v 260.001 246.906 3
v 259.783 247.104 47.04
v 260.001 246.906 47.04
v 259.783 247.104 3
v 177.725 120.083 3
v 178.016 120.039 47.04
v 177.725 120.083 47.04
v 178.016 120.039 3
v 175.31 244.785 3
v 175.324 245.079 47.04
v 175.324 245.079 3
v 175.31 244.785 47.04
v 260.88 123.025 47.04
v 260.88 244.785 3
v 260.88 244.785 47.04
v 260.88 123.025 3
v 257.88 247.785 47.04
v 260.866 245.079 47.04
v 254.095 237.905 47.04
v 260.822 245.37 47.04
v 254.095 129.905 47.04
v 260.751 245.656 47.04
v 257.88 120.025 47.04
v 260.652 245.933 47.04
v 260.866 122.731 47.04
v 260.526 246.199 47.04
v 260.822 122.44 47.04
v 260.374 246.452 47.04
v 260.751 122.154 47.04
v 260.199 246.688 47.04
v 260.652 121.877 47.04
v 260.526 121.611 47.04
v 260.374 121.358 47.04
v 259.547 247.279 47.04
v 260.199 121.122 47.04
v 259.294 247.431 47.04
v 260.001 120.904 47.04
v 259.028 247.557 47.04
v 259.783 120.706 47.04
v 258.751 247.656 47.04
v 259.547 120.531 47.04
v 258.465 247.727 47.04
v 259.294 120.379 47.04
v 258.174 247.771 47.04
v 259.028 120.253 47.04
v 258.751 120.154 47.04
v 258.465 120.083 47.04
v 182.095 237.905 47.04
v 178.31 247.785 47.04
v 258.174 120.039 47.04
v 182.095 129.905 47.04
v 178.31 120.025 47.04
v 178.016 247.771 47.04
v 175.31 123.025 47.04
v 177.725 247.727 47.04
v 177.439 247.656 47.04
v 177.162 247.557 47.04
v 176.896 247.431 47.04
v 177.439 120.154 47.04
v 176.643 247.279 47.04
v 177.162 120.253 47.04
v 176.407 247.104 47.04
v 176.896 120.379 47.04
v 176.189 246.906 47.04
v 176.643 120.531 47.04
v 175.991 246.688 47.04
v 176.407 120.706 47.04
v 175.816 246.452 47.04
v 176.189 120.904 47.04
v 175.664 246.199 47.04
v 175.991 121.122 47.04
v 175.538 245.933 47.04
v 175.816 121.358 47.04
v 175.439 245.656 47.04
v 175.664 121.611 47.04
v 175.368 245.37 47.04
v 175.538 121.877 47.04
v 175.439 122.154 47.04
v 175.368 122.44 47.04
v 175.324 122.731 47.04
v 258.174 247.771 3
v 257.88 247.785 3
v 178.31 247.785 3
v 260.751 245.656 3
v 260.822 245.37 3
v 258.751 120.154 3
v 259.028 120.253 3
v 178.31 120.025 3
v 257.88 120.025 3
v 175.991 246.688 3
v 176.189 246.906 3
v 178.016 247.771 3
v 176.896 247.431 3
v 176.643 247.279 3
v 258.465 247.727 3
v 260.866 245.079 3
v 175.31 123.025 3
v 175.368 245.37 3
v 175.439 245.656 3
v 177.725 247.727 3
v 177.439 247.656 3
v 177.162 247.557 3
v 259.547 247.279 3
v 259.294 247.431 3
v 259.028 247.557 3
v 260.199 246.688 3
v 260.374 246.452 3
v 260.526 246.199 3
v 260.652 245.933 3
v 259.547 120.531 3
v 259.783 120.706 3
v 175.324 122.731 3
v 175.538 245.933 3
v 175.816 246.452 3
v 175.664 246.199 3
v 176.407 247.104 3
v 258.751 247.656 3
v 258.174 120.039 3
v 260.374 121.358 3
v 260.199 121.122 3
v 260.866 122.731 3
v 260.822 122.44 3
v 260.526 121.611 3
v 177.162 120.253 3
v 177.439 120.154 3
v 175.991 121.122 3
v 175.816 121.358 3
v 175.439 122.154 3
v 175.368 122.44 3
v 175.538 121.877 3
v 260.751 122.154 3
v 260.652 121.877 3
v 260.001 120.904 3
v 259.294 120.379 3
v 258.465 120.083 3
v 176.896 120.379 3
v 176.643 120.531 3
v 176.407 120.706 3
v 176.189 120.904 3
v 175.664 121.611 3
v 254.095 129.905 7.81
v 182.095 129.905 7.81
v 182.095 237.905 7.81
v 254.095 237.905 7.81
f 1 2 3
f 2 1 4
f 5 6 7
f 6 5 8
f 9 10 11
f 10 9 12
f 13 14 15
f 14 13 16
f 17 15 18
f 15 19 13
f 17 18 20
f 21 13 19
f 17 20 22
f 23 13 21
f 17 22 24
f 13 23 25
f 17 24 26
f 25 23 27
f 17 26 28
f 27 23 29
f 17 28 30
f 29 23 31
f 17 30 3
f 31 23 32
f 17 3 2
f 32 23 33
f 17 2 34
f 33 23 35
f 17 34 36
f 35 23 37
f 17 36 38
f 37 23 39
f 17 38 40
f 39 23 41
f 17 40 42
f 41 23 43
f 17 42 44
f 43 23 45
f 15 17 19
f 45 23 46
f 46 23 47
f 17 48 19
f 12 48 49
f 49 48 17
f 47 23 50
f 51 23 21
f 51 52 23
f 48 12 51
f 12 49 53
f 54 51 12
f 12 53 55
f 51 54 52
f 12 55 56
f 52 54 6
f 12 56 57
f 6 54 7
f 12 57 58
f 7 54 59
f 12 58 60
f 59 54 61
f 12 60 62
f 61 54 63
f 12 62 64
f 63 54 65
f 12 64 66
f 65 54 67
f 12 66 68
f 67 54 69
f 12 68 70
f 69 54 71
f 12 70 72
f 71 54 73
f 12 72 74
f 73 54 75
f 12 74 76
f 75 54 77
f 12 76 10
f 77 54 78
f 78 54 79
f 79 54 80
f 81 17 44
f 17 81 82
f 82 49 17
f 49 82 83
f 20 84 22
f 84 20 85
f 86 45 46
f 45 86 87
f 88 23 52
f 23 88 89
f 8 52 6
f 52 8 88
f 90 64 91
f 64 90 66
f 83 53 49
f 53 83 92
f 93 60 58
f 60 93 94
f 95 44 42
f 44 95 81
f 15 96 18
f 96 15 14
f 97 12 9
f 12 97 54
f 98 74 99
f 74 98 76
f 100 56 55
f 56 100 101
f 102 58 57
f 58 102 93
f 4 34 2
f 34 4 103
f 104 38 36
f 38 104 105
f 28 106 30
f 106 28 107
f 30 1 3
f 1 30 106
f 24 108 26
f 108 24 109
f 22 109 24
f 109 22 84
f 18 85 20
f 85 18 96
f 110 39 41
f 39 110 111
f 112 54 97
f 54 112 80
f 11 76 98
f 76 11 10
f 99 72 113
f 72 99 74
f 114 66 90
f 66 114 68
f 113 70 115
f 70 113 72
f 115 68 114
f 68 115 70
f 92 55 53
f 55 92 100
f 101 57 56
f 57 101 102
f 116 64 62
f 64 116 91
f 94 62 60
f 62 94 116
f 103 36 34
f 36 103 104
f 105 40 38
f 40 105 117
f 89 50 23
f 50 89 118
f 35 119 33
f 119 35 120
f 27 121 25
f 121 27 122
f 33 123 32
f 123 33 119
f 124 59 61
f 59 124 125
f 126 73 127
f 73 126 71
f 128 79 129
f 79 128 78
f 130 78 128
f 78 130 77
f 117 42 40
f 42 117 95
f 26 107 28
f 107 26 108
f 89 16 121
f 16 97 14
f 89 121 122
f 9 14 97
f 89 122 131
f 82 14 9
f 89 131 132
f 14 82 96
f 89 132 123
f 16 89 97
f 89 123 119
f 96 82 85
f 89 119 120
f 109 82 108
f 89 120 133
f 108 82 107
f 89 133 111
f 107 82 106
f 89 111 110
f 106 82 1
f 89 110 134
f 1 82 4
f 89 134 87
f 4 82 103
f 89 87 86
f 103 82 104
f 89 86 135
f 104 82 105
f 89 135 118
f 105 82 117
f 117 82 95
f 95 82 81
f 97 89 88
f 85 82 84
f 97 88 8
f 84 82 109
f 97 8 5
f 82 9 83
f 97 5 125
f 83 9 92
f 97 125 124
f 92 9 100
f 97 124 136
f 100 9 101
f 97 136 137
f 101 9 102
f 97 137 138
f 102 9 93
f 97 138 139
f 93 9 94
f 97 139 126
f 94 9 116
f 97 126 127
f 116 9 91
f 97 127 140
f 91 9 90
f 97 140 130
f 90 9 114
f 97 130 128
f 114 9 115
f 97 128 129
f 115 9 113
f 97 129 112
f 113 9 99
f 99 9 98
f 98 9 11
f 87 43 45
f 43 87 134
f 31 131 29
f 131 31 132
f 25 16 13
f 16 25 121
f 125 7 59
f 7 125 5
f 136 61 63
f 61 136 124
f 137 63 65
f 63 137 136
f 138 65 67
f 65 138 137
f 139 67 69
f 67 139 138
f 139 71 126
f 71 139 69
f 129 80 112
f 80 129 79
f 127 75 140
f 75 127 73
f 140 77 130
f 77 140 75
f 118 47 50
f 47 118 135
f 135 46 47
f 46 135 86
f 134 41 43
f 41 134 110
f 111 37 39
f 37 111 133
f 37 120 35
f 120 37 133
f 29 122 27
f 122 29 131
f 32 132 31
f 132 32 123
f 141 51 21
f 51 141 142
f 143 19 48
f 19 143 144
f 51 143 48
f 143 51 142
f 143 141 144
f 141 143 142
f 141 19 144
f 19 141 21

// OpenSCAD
// ─── Placement Jubilee ──────────────────────────────────────
// coordinates (JSON) : (175.31, 120.02, 3.00) mm
// Rotation utilisateur : 90°
// Labware dims : xDim=127.76, yDim=85.57

translate([260.880, 120.025, 3.000])
rotate([0, 0, 90.0])
{
    // ═══════════════════════════════════════════════════════════════════
    // 3-D model: Agilent 1 Well Reservoir 290 mL
    // Load name: agilent_1_reservoir_290ml
    // Generated by labware_to_scad.py
    // Well shape(s): rectangular
    // ═══════════════════════════════════════════════════════════════════

    // ── Render quality ─────────────────────────────────────────────────
    $fn = 64;   // circle/cylinder facets

    // ── Plate dimensions ────────────────────────────────────────────────
    plate_x = 127.76;
    plate_y = 85.57;
    plate_z = 44.04;

    // ── Corner rounding radius (set to 0 for sharp corners) ─────────────
    corner_r = 3.0;

    // ── Model ───────────────────────────────────────────────────────────
    difference() {

        // Outer plate body (rounded corners via hull)
        hull() {
            for (cx = [3.0, 124.76],
                 cy = [3.0, 82.57])
                translate([cx, cy, 0])
                    cylinder(r=3.0, h=44.04);
        }

        // ── Well cutouts ───────────────────────────────────────
        // Well A1
        translate([9.880000000000003, 6.784999999999997, 4.81])
            cube([108, 72, 39.23 + 1]);
    }

}
